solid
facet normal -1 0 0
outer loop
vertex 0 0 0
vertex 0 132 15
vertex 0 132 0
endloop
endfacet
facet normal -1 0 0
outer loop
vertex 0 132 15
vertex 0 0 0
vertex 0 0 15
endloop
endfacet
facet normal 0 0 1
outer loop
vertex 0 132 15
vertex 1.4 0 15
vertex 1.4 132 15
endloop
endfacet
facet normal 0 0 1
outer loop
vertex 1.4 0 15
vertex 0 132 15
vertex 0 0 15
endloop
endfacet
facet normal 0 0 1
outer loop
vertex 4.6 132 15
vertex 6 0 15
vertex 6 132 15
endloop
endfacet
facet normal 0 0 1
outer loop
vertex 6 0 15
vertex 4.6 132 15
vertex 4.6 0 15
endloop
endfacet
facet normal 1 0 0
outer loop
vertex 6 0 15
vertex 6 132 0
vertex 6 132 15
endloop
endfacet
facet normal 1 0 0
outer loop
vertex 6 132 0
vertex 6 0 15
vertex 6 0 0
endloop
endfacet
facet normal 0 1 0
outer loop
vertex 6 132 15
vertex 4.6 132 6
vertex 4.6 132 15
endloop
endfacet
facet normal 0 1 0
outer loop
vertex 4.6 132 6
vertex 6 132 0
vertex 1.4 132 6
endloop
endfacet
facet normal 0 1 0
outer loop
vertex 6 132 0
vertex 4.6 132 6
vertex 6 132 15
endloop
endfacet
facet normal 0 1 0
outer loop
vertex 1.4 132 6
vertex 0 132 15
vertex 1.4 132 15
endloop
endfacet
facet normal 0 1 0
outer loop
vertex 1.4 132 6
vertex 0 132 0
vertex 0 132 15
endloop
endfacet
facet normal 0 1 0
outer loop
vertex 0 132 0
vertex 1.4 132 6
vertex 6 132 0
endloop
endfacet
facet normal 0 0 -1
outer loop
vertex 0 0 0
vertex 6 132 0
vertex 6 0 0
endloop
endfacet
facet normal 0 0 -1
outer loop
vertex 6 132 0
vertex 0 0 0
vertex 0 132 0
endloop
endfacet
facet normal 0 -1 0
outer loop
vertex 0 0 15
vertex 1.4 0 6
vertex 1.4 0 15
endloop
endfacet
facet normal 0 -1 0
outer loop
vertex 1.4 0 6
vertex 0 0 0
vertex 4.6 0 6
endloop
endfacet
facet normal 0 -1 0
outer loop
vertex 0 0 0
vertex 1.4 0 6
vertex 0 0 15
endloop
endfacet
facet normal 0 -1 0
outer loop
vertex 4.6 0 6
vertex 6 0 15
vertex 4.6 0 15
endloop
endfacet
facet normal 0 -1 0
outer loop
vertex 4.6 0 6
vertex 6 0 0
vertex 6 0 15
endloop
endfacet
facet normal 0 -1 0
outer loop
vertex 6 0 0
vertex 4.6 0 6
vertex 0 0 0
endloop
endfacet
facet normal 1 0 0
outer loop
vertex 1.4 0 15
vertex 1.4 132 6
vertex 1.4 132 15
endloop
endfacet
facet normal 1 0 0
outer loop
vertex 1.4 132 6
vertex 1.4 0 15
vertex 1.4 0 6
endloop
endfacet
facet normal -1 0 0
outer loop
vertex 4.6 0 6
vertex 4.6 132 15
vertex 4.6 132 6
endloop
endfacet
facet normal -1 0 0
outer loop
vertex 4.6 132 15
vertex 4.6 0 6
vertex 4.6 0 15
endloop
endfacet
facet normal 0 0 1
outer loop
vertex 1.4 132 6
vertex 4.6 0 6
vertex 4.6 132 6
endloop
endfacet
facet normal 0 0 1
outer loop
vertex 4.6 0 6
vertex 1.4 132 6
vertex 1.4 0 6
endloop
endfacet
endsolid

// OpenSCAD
01_Main_Dim = 132;
02_Width = 6;
03_Height = 15;
04_Slot_Width = 3;
05_Slot_Depth = 9;
06_Clearance = 0.1;
BigNum = 9999;
SmallNum = .01;
Slot_x = (02_Width-04_Slot_Width-06_Clearance*2)/2;

Text_Height = 10;
Text_Thick = 15;

difference()
	{
	
    // Main body
        cube([ 02_Width, 01_Main_Dim, 03_Height]);
	
        translate([Slot_x, -SmallNum, 03_Height-05_Slot_Depth])
		cube([04_Slot_Width+06_Clearance*2, BigNum, BigNum]);
        
	
	}
